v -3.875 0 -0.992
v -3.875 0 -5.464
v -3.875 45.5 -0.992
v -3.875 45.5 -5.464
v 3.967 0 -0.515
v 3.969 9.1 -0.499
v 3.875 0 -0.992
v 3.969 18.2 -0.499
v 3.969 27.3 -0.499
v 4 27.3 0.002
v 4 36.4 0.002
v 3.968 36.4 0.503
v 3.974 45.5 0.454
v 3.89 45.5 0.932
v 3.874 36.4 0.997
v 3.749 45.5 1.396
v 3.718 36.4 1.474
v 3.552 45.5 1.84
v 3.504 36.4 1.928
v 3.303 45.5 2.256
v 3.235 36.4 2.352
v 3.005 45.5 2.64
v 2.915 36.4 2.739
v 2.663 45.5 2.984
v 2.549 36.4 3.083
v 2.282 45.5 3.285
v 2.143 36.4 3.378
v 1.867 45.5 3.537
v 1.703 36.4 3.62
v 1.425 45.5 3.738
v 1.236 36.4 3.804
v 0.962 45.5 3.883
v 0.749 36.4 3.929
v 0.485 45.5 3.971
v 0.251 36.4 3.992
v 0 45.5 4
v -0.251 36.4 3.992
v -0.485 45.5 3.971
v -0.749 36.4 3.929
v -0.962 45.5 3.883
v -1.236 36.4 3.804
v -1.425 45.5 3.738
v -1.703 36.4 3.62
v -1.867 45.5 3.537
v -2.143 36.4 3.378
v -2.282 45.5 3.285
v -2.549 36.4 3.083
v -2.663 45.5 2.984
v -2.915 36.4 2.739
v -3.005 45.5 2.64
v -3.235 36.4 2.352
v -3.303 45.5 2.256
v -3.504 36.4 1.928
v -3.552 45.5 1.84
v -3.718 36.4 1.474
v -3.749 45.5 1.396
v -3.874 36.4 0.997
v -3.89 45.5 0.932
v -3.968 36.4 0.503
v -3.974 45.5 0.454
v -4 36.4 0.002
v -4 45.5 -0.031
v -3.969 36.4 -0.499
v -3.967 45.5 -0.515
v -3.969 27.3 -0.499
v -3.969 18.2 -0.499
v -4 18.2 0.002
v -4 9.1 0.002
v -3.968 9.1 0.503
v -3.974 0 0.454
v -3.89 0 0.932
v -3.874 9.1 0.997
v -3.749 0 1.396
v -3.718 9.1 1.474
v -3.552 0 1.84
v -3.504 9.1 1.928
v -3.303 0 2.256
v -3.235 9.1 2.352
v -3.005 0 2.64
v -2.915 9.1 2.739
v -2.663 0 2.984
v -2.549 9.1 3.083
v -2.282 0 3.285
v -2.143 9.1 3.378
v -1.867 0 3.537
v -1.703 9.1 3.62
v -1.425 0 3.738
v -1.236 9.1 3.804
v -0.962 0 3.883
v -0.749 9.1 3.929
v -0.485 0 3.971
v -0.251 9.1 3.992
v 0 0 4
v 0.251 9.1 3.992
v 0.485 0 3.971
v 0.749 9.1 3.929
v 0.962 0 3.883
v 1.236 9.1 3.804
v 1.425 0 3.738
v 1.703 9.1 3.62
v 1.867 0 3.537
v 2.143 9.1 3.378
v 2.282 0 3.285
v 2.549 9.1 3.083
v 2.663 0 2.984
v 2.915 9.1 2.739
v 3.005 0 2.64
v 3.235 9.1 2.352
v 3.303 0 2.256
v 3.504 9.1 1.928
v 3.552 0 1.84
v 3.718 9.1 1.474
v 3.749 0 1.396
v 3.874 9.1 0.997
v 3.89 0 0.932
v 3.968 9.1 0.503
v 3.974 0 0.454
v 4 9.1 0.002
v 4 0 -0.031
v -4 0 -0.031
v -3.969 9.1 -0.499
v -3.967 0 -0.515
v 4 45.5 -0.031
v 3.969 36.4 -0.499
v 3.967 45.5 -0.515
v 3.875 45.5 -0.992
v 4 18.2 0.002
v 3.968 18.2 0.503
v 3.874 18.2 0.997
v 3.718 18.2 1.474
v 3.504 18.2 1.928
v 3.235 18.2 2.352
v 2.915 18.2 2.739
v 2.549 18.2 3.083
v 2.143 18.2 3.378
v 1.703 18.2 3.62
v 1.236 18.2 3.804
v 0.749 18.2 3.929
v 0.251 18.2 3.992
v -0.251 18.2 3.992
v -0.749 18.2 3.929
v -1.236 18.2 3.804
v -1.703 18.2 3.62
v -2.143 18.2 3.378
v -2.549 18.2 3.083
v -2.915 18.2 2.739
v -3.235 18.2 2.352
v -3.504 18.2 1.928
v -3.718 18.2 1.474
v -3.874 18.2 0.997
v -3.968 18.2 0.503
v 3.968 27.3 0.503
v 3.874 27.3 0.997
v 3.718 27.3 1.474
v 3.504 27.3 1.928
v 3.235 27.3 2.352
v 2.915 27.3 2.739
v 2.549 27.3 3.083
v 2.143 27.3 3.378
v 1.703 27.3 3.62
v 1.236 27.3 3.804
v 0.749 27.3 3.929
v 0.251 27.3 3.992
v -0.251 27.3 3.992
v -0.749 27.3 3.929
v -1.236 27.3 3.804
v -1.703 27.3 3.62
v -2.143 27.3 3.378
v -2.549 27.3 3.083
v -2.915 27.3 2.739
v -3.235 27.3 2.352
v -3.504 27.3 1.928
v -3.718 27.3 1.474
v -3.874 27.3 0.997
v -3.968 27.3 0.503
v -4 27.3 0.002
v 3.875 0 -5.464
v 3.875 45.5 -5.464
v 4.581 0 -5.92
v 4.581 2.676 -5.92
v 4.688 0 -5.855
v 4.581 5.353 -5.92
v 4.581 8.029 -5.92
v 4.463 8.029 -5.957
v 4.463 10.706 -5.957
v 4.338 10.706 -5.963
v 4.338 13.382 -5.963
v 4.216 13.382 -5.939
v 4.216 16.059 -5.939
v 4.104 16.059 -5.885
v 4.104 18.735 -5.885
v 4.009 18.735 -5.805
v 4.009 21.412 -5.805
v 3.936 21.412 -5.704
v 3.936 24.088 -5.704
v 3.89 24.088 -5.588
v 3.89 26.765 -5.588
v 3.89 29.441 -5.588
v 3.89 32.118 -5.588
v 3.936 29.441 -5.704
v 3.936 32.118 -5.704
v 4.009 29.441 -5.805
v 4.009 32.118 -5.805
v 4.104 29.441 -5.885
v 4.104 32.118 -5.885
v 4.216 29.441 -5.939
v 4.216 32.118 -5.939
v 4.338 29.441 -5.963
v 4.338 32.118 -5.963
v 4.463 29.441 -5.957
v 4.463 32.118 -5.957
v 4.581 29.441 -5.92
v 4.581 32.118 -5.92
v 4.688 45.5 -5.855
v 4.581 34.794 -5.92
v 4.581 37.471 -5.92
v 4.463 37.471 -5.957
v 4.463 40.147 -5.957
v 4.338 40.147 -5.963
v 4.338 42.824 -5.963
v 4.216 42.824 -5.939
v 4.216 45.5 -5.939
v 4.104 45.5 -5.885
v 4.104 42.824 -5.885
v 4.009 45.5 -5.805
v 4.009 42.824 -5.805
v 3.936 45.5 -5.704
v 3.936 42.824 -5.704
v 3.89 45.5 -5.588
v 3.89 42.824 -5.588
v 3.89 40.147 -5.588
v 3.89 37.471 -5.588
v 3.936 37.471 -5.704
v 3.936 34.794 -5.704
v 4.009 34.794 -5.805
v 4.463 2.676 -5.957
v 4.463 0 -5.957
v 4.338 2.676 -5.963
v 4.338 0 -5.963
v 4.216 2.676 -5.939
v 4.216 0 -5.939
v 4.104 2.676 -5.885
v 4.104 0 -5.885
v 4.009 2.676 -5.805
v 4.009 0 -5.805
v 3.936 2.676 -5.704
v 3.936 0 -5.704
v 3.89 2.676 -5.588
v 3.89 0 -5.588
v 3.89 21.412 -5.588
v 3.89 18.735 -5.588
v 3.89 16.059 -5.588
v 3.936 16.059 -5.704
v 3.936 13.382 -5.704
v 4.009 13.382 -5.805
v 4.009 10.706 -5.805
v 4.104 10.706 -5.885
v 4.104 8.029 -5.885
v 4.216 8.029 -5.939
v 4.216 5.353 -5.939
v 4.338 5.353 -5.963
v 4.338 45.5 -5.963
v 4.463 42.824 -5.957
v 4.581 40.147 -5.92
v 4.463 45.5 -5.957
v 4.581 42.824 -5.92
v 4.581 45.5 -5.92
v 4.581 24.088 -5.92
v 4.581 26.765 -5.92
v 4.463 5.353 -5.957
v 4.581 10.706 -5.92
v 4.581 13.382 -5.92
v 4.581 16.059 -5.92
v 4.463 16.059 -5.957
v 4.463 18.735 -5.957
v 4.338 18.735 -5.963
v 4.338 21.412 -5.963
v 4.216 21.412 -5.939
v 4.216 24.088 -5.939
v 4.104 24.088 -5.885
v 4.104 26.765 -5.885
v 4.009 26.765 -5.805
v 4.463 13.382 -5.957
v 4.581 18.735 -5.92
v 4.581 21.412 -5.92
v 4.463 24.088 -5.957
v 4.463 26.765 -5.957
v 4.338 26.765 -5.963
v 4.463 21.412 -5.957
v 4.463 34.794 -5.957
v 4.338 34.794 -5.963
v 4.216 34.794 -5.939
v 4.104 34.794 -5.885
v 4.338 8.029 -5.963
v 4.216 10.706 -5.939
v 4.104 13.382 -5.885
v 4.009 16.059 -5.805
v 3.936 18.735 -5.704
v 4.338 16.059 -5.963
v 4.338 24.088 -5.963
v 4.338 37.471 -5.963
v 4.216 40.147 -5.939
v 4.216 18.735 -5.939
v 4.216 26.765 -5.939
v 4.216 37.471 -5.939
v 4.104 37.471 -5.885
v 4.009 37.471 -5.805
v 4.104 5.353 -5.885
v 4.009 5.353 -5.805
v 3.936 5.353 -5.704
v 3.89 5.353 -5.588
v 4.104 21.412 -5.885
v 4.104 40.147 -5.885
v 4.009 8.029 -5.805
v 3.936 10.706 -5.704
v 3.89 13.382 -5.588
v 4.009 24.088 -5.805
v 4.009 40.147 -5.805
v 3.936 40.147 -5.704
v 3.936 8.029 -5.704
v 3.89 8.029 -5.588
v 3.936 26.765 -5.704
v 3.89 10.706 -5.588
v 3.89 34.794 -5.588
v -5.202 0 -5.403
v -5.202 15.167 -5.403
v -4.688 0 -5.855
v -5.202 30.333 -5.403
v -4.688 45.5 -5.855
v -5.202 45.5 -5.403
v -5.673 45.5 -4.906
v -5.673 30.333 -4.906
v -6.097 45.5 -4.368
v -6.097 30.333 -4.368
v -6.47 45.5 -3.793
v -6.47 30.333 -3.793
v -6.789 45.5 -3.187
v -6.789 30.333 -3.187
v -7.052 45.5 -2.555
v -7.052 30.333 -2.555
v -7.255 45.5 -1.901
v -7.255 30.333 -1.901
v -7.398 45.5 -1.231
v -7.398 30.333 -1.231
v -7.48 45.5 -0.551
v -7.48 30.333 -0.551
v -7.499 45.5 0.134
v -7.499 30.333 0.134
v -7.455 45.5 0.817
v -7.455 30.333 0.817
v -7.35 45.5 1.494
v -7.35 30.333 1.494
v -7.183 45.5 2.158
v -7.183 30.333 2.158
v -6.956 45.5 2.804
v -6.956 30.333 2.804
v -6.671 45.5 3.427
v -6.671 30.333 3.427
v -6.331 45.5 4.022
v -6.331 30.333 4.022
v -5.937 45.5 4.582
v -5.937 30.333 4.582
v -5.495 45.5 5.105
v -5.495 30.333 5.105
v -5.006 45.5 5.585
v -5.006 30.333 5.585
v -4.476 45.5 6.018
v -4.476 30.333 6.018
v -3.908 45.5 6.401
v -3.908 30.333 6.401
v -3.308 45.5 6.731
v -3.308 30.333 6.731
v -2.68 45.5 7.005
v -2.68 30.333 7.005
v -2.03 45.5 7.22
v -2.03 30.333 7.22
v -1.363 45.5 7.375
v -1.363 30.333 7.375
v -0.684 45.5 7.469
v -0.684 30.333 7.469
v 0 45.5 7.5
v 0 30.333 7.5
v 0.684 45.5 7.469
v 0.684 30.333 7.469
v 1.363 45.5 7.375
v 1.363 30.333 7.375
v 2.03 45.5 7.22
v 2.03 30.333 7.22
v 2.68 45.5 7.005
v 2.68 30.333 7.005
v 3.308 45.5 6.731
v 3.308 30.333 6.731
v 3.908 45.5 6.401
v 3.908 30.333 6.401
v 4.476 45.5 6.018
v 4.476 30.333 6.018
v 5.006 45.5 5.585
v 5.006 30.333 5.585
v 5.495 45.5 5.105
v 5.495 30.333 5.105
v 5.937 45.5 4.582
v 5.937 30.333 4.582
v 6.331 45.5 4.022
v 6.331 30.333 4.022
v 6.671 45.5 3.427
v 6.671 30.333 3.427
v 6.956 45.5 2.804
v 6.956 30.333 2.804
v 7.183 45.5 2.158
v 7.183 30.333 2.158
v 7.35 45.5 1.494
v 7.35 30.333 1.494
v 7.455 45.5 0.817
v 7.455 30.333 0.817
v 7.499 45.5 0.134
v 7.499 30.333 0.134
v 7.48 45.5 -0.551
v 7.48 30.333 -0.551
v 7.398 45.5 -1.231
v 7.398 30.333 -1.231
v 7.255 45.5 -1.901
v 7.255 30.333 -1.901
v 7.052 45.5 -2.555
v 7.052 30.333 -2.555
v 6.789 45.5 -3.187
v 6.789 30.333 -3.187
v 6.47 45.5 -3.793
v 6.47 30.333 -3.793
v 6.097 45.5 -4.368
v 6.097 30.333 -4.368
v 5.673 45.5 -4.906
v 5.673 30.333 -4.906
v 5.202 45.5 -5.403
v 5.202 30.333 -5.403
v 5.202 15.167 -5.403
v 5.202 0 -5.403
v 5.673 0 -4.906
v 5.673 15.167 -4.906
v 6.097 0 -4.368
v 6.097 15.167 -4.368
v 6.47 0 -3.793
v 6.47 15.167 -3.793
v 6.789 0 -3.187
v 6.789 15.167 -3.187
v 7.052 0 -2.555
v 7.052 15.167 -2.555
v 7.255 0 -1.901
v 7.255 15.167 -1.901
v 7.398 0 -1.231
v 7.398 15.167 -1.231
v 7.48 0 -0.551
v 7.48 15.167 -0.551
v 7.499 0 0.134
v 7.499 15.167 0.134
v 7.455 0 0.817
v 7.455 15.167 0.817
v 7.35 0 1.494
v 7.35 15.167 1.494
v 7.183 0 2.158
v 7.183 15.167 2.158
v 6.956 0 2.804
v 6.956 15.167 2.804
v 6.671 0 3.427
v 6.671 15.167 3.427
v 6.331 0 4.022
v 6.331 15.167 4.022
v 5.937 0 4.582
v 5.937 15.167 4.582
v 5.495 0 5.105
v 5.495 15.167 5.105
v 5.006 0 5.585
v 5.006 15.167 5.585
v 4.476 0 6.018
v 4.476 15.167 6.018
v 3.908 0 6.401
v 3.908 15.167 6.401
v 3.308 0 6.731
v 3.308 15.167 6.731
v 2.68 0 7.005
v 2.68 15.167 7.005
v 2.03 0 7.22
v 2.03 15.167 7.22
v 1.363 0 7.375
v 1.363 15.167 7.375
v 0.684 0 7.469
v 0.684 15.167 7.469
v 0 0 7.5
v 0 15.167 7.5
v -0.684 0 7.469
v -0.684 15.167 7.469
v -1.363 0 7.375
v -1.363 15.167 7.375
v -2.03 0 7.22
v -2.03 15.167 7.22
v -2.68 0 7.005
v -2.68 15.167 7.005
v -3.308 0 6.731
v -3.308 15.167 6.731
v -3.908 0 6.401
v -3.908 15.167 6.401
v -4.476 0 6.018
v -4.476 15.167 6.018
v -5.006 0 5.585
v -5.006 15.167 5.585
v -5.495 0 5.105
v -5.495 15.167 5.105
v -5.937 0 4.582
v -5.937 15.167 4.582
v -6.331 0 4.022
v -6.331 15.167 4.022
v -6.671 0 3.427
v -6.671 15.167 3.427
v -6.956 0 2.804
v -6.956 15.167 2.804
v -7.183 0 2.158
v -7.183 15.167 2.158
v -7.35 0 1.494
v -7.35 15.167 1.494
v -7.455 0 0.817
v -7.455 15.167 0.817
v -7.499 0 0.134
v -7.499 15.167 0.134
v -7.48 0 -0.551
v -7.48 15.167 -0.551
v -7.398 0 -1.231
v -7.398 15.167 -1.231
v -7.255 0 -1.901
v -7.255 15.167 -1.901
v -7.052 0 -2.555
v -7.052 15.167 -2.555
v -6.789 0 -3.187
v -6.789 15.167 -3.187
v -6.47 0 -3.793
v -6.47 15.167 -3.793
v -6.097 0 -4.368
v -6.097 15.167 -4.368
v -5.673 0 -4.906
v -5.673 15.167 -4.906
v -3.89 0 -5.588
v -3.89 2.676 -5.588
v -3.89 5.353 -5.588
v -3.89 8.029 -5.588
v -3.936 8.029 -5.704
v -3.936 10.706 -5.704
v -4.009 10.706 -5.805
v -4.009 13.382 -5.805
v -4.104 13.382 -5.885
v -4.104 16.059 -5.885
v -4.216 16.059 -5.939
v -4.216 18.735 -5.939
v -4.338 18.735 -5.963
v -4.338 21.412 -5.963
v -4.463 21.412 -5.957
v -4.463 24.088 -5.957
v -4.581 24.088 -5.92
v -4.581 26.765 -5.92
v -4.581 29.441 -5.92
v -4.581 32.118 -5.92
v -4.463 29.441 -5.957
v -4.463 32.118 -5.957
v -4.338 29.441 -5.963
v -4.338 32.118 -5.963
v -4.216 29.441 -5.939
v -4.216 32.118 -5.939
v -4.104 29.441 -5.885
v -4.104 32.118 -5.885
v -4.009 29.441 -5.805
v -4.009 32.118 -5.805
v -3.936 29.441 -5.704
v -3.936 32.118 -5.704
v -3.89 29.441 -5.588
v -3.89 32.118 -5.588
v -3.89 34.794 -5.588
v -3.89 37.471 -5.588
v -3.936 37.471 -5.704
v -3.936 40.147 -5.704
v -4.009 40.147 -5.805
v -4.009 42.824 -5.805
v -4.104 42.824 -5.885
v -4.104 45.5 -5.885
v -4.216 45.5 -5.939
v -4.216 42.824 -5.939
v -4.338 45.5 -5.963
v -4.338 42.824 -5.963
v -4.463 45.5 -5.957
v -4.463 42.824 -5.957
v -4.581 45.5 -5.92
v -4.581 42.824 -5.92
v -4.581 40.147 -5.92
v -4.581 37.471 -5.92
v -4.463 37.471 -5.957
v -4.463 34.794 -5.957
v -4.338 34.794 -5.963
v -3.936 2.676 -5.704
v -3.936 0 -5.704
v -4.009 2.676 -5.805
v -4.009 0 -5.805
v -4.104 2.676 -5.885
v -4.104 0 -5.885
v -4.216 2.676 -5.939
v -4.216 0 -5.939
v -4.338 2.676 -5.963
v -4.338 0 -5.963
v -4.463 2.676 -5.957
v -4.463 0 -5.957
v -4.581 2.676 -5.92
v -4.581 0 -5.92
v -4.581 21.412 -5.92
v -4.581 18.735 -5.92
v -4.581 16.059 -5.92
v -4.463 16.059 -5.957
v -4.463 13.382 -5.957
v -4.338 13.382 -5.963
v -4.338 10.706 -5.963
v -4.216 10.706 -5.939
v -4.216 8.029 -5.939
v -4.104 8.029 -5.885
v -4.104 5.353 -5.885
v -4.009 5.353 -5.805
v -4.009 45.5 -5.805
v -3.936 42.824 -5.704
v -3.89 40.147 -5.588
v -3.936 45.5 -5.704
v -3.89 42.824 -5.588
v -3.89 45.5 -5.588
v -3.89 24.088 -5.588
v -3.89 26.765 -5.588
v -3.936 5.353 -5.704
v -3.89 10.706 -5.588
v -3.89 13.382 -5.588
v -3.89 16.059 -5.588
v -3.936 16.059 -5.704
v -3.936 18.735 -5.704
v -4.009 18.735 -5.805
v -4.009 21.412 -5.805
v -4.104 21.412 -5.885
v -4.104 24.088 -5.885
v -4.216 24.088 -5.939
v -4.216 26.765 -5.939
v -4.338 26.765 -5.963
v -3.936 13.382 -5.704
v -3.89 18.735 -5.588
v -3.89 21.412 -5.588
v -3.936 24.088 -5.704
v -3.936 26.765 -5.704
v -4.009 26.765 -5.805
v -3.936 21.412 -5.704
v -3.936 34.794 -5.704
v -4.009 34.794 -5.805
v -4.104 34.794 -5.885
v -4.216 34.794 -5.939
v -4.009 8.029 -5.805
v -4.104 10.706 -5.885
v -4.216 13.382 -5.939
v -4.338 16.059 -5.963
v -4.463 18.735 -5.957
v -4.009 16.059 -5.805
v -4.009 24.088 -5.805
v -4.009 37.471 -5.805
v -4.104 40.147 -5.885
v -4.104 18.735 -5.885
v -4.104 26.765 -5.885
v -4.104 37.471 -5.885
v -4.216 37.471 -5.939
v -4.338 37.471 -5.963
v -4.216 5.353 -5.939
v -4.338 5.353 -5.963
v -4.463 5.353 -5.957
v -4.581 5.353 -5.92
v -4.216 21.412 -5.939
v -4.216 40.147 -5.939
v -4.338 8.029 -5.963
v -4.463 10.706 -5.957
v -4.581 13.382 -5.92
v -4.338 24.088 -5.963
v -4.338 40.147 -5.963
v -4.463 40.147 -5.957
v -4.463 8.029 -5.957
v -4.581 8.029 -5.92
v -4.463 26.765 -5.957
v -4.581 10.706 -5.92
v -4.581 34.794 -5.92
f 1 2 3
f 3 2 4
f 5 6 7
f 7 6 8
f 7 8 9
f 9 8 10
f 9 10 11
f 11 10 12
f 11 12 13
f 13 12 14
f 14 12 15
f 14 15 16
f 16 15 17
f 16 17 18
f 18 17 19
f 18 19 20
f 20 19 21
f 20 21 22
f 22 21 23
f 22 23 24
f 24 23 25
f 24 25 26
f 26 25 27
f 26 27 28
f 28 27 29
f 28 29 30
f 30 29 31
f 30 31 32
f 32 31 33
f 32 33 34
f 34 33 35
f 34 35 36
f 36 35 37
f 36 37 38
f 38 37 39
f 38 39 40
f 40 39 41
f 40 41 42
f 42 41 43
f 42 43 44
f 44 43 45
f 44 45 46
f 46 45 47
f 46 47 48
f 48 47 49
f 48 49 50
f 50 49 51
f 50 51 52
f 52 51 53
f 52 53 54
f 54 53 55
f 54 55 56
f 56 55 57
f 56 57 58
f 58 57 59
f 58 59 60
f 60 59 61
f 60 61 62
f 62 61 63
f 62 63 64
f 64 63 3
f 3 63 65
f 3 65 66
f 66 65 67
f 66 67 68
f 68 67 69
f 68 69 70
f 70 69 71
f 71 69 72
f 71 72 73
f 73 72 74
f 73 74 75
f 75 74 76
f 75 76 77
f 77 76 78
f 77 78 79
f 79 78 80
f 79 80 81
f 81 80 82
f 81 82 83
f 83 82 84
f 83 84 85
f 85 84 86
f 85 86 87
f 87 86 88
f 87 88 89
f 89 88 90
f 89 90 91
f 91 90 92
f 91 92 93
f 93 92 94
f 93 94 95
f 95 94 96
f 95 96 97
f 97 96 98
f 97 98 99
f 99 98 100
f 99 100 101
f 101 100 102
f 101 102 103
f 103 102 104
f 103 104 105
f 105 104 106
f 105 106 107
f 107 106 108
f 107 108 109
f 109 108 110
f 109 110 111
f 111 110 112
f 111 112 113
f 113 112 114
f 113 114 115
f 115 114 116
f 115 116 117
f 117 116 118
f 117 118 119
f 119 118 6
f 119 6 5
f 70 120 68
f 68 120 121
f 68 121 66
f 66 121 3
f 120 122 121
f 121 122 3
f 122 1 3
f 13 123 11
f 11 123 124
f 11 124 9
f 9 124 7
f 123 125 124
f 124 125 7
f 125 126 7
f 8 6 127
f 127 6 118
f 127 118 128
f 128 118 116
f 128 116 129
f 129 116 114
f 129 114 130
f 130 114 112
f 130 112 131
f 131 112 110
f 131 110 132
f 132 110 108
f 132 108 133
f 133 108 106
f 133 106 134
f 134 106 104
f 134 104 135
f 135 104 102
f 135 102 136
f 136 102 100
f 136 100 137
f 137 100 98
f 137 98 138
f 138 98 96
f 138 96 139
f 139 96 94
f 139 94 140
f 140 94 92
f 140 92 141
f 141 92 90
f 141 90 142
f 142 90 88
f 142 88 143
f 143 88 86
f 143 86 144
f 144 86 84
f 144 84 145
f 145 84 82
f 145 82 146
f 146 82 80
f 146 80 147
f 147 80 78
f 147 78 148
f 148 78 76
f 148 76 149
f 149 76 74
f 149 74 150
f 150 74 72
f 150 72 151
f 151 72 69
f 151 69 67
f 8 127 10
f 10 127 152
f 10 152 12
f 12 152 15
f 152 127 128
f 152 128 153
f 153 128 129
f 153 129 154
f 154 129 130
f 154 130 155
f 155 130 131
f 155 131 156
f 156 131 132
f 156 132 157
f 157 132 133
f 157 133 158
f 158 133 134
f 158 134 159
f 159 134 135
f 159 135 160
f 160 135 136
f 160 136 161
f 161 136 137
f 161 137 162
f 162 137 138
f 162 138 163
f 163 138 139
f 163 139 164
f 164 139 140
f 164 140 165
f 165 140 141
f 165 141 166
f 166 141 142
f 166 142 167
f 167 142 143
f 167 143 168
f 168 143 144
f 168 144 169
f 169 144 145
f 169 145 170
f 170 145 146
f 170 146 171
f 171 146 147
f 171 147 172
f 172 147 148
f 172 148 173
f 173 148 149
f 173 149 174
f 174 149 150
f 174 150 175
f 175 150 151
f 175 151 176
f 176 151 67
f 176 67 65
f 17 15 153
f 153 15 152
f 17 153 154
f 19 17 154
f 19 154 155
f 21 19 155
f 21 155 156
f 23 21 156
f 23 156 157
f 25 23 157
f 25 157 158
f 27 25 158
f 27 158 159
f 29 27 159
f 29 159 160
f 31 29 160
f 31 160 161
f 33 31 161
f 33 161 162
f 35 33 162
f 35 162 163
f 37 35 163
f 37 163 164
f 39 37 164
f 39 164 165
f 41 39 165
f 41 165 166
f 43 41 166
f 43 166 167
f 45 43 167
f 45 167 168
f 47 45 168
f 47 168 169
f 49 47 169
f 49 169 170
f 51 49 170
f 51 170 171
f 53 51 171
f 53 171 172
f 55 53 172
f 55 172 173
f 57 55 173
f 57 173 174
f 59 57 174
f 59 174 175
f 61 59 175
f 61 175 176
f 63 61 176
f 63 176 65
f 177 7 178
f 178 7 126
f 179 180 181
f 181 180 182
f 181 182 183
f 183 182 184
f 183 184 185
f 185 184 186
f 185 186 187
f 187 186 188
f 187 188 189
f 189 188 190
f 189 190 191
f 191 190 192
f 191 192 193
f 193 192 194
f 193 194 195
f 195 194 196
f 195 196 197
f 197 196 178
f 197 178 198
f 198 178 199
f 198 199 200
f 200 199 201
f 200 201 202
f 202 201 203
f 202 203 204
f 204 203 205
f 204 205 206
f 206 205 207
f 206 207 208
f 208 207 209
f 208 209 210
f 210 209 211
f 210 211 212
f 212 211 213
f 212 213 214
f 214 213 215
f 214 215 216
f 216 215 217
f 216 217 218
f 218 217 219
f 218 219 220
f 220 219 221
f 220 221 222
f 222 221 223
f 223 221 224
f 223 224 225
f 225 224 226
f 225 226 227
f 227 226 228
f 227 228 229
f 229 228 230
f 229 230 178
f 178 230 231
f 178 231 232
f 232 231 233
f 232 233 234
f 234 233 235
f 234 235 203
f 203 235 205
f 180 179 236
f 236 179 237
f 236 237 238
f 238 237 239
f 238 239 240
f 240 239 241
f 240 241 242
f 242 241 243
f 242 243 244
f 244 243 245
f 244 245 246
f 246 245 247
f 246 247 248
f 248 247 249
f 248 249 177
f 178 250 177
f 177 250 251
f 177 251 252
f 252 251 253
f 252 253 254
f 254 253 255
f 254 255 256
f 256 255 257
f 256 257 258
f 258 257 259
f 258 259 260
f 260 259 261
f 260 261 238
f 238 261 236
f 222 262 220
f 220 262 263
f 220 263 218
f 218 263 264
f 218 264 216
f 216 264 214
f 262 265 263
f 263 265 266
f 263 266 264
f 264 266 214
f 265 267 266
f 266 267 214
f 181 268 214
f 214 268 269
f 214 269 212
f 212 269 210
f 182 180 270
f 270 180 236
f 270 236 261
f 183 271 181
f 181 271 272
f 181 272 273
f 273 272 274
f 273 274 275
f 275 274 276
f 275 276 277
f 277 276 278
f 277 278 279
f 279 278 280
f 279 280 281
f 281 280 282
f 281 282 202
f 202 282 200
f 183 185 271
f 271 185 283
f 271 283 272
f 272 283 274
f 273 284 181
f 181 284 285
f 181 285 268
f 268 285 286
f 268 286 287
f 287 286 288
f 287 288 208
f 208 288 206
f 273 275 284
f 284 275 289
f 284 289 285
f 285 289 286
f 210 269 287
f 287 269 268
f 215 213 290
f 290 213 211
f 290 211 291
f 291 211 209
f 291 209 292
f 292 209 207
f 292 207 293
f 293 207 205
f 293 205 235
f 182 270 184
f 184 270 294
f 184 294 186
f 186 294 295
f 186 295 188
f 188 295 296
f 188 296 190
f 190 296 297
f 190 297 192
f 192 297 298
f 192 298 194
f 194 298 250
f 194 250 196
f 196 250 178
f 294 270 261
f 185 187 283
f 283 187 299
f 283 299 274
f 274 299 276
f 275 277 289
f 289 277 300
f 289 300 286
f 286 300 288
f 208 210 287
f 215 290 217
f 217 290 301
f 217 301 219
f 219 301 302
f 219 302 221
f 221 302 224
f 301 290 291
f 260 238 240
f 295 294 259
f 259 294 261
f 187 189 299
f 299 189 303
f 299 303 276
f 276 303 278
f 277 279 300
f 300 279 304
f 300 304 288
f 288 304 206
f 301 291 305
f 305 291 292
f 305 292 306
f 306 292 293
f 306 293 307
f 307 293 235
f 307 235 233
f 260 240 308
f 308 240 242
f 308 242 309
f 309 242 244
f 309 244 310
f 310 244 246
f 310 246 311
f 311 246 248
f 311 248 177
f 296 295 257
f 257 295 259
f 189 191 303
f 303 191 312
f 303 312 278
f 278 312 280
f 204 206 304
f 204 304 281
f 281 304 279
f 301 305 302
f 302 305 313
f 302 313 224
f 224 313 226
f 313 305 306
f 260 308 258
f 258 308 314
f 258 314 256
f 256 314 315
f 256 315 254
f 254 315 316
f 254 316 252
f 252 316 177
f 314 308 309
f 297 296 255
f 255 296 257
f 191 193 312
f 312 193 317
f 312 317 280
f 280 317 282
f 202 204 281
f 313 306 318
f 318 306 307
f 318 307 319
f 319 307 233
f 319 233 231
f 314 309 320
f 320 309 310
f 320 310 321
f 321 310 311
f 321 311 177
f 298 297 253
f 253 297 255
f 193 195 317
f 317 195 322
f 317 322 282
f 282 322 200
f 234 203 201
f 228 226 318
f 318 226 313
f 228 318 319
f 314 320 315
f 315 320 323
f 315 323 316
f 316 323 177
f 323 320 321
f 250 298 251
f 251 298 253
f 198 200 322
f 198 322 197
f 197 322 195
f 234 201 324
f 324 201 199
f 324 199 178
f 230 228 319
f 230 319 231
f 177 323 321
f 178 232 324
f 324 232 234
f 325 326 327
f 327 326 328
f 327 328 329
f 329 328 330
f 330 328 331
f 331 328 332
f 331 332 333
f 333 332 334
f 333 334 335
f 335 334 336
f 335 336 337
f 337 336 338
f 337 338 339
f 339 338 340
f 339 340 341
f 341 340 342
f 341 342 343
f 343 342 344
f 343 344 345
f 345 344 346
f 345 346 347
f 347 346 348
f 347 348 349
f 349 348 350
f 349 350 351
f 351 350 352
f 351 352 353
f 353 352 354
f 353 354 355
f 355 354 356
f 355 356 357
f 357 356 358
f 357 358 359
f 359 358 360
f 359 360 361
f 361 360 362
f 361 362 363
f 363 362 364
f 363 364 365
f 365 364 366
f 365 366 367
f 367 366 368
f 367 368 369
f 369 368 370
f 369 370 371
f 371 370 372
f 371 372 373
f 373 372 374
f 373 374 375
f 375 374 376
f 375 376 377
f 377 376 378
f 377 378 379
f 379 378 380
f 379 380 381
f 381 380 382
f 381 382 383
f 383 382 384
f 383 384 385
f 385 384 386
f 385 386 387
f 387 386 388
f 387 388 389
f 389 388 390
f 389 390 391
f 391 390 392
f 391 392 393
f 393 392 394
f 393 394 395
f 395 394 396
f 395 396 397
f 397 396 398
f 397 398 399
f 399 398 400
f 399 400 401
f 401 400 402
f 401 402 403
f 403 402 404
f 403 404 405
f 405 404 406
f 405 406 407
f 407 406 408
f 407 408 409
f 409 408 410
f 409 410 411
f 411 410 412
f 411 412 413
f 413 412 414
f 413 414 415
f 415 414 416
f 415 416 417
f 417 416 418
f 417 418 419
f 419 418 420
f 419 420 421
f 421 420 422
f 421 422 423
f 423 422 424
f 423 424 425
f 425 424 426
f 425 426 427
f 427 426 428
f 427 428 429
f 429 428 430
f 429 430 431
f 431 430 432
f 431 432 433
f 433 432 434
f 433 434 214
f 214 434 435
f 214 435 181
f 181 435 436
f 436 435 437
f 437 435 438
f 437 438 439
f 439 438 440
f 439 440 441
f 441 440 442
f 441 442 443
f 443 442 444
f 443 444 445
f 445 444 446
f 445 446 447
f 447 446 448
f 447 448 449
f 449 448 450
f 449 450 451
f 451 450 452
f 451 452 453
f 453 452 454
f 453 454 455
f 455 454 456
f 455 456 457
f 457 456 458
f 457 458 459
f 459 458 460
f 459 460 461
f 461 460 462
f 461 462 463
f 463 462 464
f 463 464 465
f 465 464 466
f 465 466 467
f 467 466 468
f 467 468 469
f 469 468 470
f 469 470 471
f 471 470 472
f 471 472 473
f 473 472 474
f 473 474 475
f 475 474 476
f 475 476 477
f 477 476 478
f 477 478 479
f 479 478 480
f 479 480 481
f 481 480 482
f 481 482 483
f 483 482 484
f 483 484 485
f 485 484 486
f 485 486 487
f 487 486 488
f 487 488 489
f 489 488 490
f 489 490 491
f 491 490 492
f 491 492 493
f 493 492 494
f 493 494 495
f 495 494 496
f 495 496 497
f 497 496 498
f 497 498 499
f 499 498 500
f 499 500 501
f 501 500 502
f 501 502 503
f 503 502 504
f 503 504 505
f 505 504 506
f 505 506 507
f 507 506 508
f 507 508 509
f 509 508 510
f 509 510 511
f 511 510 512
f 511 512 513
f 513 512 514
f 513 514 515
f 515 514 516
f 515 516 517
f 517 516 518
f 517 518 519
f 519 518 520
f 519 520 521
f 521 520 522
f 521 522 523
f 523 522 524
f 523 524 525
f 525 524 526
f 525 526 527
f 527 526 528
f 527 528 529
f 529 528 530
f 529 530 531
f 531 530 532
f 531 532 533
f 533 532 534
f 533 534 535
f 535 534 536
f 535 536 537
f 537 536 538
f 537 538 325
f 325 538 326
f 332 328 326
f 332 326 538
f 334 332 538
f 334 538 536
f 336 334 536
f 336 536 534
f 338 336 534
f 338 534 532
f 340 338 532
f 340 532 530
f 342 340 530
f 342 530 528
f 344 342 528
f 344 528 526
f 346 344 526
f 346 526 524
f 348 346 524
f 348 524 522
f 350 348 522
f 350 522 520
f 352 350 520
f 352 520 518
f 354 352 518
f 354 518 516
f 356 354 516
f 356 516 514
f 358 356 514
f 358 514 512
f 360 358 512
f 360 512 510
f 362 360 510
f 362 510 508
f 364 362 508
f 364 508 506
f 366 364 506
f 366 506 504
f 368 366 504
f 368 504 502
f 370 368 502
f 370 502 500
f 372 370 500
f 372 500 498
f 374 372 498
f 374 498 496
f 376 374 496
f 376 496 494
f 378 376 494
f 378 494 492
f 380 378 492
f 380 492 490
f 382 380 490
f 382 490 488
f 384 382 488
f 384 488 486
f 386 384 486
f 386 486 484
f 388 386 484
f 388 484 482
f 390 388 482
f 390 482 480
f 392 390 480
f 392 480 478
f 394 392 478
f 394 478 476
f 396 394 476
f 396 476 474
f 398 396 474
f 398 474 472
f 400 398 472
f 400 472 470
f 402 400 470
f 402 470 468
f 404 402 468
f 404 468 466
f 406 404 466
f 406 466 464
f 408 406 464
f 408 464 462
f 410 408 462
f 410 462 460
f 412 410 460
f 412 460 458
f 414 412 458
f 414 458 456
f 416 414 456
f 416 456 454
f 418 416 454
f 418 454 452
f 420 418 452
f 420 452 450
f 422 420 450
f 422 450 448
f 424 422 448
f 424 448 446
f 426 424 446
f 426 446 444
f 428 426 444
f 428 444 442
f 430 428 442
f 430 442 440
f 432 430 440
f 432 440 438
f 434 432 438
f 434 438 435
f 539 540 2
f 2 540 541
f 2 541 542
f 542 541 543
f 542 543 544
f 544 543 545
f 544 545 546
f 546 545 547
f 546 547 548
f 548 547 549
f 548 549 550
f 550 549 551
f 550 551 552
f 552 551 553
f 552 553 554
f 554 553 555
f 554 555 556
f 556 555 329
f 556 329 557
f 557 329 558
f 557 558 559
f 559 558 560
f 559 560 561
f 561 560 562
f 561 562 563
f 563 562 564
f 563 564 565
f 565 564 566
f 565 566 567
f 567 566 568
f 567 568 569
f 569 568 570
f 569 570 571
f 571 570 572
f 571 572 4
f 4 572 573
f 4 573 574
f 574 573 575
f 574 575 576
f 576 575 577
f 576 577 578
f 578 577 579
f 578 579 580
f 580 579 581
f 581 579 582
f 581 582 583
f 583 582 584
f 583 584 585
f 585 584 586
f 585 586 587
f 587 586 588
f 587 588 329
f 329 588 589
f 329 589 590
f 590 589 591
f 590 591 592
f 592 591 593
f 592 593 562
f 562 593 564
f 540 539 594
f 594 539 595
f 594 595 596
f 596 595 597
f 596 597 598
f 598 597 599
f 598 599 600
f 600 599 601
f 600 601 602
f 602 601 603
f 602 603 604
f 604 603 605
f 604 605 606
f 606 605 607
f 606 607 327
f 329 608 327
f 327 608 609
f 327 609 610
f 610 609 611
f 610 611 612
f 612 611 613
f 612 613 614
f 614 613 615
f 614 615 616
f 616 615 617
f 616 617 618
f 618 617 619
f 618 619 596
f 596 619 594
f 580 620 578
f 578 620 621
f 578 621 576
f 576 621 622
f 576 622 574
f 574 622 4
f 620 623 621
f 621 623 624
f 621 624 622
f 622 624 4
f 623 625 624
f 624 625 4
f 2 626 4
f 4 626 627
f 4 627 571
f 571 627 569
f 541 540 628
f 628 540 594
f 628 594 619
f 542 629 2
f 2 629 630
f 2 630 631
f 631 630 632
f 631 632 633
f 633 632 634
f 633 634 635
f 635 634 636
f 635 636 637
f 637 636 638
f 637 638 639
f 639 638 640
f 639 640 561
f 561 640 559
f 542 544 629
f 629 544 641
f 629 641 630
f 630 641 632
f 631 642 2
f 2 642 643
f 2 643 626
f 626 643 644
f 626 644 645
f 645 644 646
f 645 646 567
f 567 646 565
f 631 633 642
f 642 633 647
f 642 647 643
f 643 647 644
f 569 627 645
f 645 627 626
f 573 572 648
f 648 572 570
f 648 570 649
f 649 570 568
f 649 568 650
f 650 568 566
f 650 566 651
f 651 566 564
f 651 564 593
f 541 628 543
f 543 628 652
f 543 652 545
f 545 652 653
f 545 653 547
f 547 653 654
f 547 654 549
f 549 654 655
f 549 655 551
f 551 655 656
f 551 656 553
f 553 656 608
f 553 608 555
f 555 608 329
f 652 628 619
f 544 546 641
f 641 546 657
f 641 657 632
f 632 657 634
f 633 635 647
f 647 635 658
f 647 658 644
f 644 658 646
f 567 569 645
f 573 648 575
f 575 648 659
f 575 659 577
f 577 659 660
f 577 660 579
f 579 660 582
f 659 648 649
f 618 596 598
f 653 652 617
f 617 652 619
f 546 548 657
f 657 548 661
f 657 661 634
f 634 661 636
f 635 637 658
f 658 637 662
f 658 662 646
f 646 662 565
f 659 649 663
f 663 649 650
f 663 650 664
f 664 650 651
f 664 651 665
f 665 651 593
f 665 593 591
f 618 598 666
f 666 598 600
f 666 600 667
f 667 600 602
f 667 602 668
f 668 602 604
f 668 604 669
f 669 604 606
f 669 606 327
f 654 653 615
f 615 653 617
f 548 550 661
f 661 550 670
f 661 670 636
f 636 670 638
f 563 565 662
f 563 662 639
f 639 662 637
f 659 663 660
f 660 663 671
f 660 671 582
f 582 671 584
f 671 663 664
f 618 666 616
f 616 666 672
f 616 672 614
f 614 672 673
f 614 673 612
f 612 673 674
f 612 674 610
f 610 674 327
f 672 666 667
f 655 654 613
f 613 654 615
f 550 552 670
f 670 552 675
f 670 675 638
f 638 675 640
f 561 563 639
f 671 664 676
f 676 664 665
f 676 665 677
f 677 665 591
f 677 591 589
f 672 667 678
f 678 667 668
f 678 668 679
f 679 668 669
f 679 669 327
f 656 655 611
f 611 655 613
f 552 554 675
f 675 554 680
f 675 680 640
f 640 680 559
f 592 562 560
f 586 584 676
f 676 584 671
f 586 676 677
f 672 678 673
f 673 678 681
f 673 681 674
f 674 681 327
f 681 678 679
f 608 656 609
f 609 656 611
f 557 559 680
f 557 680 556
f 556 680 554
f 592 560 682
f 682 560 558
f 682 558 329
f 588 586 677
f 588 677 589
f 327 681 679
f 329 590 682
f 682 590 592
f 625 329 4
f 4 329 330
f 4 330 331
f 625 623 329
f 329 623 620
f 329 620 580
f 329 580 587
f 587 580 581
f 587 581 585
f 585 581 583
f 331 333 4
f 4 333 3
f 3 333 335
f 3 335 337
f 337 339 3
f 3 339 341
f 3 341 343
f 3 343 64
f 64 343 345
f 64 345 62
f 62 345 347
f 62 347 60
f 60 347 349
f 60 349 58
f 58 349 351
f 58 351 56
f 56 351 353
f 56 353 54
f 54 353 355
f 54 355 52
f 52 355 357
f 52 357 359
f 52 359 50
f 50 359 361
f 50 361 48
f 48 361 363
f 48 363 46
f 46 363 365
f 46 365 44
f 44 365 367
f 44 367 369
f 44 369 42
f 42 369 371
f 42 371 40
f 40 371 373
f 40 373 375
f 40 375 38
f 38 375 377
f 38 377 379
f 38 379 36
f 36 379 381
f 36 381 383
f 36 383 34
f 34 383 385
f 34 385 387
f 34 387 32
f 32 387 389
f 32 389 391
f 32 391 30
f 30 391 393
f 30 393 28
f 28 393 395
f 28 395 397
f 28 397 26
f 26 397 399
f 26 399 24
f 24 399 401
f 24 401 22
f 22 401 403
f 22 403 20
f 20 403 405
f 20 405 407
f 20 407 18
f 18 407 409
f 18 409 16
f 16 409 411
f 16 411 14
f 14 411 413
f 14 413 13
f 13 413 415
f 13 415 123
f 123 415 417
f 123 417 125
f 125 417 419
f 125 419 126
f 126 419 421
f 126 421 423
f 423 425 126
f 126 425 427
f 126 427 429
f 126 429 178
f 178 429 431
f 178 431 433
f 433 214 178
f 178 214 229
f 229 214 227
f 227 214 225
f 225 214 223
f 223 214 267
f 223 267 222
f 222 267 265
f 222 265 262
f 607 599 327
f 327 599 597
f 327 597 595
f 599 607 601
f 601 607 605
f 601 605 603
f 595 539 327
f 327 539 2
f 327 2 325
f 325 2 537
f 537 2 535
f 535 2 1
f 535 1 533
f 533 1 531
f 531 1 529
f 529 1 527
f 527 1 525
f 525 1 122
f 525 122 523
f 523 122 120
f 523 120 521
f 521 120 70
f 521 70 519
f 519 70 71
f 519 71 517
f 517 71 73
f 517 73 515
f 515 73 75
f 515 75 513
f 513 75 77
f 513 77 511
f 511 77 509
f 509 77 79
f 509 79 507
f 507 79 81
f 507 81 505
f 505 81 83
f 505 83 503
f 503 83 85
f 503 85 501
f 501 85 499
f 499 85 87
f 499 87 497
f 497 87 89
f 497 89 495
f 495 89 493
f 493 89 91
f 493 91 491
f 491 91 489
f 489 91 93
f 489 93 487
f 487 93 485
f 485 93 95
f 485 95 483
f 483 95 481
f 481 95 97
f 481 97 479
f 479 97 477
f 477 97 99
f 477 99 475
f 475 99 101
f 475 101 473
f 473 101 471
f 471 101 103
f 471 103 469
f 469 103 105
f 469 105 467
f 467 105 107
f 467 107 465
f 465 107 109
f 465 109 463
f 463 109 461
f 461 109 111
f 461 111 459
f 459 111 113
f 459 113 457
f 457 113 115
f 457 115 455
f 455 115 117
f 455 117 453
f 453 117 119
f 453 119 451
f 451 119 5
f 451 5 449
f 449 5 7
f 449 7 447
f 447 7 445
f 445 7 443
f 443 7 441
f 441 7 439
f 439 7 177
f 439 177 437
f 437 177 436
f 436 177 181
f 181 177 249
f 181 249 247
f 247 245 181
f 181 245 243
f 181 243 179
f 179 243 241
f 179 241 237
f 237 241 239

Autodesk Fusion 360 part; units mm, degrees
sketch "Sketch1" plane through (0, 0, 0) normal (0, 1, 0) x (1, 0, 0)
  line L0 (0, -11) -> (0, 10) construction
  line L1 (-3.875, 5.4644) -> (-3.875, 0.9922)
  line L2 (3.875, 0.9922) -> (3.875, 5.4644)
  arc A0 (-4.6875, 5.8547) -> (4.6875, 5.8547) centre (0, 0) ccw
  arc A1 (-3.875, 0.9922) -> (3.875, 0.9922) centre (0, 0) ccw
  arc A2 (-3.875, 5.4644) -> (-4.6875, 5.8547) centre (-4.375, 5.4644) ccw
  arc A3 (4.6875, 5.8547) -> (3.875, 5.4644) centre (4.375, 5.4644) ccw
  dimension "d1" = 8
  dimension "d2" = 15
  dimension "d4" = 0.5
  dimension "d5" = 7.75
extrude "Extrude1" add sketch "Sketch1" along normal blind 45.5
